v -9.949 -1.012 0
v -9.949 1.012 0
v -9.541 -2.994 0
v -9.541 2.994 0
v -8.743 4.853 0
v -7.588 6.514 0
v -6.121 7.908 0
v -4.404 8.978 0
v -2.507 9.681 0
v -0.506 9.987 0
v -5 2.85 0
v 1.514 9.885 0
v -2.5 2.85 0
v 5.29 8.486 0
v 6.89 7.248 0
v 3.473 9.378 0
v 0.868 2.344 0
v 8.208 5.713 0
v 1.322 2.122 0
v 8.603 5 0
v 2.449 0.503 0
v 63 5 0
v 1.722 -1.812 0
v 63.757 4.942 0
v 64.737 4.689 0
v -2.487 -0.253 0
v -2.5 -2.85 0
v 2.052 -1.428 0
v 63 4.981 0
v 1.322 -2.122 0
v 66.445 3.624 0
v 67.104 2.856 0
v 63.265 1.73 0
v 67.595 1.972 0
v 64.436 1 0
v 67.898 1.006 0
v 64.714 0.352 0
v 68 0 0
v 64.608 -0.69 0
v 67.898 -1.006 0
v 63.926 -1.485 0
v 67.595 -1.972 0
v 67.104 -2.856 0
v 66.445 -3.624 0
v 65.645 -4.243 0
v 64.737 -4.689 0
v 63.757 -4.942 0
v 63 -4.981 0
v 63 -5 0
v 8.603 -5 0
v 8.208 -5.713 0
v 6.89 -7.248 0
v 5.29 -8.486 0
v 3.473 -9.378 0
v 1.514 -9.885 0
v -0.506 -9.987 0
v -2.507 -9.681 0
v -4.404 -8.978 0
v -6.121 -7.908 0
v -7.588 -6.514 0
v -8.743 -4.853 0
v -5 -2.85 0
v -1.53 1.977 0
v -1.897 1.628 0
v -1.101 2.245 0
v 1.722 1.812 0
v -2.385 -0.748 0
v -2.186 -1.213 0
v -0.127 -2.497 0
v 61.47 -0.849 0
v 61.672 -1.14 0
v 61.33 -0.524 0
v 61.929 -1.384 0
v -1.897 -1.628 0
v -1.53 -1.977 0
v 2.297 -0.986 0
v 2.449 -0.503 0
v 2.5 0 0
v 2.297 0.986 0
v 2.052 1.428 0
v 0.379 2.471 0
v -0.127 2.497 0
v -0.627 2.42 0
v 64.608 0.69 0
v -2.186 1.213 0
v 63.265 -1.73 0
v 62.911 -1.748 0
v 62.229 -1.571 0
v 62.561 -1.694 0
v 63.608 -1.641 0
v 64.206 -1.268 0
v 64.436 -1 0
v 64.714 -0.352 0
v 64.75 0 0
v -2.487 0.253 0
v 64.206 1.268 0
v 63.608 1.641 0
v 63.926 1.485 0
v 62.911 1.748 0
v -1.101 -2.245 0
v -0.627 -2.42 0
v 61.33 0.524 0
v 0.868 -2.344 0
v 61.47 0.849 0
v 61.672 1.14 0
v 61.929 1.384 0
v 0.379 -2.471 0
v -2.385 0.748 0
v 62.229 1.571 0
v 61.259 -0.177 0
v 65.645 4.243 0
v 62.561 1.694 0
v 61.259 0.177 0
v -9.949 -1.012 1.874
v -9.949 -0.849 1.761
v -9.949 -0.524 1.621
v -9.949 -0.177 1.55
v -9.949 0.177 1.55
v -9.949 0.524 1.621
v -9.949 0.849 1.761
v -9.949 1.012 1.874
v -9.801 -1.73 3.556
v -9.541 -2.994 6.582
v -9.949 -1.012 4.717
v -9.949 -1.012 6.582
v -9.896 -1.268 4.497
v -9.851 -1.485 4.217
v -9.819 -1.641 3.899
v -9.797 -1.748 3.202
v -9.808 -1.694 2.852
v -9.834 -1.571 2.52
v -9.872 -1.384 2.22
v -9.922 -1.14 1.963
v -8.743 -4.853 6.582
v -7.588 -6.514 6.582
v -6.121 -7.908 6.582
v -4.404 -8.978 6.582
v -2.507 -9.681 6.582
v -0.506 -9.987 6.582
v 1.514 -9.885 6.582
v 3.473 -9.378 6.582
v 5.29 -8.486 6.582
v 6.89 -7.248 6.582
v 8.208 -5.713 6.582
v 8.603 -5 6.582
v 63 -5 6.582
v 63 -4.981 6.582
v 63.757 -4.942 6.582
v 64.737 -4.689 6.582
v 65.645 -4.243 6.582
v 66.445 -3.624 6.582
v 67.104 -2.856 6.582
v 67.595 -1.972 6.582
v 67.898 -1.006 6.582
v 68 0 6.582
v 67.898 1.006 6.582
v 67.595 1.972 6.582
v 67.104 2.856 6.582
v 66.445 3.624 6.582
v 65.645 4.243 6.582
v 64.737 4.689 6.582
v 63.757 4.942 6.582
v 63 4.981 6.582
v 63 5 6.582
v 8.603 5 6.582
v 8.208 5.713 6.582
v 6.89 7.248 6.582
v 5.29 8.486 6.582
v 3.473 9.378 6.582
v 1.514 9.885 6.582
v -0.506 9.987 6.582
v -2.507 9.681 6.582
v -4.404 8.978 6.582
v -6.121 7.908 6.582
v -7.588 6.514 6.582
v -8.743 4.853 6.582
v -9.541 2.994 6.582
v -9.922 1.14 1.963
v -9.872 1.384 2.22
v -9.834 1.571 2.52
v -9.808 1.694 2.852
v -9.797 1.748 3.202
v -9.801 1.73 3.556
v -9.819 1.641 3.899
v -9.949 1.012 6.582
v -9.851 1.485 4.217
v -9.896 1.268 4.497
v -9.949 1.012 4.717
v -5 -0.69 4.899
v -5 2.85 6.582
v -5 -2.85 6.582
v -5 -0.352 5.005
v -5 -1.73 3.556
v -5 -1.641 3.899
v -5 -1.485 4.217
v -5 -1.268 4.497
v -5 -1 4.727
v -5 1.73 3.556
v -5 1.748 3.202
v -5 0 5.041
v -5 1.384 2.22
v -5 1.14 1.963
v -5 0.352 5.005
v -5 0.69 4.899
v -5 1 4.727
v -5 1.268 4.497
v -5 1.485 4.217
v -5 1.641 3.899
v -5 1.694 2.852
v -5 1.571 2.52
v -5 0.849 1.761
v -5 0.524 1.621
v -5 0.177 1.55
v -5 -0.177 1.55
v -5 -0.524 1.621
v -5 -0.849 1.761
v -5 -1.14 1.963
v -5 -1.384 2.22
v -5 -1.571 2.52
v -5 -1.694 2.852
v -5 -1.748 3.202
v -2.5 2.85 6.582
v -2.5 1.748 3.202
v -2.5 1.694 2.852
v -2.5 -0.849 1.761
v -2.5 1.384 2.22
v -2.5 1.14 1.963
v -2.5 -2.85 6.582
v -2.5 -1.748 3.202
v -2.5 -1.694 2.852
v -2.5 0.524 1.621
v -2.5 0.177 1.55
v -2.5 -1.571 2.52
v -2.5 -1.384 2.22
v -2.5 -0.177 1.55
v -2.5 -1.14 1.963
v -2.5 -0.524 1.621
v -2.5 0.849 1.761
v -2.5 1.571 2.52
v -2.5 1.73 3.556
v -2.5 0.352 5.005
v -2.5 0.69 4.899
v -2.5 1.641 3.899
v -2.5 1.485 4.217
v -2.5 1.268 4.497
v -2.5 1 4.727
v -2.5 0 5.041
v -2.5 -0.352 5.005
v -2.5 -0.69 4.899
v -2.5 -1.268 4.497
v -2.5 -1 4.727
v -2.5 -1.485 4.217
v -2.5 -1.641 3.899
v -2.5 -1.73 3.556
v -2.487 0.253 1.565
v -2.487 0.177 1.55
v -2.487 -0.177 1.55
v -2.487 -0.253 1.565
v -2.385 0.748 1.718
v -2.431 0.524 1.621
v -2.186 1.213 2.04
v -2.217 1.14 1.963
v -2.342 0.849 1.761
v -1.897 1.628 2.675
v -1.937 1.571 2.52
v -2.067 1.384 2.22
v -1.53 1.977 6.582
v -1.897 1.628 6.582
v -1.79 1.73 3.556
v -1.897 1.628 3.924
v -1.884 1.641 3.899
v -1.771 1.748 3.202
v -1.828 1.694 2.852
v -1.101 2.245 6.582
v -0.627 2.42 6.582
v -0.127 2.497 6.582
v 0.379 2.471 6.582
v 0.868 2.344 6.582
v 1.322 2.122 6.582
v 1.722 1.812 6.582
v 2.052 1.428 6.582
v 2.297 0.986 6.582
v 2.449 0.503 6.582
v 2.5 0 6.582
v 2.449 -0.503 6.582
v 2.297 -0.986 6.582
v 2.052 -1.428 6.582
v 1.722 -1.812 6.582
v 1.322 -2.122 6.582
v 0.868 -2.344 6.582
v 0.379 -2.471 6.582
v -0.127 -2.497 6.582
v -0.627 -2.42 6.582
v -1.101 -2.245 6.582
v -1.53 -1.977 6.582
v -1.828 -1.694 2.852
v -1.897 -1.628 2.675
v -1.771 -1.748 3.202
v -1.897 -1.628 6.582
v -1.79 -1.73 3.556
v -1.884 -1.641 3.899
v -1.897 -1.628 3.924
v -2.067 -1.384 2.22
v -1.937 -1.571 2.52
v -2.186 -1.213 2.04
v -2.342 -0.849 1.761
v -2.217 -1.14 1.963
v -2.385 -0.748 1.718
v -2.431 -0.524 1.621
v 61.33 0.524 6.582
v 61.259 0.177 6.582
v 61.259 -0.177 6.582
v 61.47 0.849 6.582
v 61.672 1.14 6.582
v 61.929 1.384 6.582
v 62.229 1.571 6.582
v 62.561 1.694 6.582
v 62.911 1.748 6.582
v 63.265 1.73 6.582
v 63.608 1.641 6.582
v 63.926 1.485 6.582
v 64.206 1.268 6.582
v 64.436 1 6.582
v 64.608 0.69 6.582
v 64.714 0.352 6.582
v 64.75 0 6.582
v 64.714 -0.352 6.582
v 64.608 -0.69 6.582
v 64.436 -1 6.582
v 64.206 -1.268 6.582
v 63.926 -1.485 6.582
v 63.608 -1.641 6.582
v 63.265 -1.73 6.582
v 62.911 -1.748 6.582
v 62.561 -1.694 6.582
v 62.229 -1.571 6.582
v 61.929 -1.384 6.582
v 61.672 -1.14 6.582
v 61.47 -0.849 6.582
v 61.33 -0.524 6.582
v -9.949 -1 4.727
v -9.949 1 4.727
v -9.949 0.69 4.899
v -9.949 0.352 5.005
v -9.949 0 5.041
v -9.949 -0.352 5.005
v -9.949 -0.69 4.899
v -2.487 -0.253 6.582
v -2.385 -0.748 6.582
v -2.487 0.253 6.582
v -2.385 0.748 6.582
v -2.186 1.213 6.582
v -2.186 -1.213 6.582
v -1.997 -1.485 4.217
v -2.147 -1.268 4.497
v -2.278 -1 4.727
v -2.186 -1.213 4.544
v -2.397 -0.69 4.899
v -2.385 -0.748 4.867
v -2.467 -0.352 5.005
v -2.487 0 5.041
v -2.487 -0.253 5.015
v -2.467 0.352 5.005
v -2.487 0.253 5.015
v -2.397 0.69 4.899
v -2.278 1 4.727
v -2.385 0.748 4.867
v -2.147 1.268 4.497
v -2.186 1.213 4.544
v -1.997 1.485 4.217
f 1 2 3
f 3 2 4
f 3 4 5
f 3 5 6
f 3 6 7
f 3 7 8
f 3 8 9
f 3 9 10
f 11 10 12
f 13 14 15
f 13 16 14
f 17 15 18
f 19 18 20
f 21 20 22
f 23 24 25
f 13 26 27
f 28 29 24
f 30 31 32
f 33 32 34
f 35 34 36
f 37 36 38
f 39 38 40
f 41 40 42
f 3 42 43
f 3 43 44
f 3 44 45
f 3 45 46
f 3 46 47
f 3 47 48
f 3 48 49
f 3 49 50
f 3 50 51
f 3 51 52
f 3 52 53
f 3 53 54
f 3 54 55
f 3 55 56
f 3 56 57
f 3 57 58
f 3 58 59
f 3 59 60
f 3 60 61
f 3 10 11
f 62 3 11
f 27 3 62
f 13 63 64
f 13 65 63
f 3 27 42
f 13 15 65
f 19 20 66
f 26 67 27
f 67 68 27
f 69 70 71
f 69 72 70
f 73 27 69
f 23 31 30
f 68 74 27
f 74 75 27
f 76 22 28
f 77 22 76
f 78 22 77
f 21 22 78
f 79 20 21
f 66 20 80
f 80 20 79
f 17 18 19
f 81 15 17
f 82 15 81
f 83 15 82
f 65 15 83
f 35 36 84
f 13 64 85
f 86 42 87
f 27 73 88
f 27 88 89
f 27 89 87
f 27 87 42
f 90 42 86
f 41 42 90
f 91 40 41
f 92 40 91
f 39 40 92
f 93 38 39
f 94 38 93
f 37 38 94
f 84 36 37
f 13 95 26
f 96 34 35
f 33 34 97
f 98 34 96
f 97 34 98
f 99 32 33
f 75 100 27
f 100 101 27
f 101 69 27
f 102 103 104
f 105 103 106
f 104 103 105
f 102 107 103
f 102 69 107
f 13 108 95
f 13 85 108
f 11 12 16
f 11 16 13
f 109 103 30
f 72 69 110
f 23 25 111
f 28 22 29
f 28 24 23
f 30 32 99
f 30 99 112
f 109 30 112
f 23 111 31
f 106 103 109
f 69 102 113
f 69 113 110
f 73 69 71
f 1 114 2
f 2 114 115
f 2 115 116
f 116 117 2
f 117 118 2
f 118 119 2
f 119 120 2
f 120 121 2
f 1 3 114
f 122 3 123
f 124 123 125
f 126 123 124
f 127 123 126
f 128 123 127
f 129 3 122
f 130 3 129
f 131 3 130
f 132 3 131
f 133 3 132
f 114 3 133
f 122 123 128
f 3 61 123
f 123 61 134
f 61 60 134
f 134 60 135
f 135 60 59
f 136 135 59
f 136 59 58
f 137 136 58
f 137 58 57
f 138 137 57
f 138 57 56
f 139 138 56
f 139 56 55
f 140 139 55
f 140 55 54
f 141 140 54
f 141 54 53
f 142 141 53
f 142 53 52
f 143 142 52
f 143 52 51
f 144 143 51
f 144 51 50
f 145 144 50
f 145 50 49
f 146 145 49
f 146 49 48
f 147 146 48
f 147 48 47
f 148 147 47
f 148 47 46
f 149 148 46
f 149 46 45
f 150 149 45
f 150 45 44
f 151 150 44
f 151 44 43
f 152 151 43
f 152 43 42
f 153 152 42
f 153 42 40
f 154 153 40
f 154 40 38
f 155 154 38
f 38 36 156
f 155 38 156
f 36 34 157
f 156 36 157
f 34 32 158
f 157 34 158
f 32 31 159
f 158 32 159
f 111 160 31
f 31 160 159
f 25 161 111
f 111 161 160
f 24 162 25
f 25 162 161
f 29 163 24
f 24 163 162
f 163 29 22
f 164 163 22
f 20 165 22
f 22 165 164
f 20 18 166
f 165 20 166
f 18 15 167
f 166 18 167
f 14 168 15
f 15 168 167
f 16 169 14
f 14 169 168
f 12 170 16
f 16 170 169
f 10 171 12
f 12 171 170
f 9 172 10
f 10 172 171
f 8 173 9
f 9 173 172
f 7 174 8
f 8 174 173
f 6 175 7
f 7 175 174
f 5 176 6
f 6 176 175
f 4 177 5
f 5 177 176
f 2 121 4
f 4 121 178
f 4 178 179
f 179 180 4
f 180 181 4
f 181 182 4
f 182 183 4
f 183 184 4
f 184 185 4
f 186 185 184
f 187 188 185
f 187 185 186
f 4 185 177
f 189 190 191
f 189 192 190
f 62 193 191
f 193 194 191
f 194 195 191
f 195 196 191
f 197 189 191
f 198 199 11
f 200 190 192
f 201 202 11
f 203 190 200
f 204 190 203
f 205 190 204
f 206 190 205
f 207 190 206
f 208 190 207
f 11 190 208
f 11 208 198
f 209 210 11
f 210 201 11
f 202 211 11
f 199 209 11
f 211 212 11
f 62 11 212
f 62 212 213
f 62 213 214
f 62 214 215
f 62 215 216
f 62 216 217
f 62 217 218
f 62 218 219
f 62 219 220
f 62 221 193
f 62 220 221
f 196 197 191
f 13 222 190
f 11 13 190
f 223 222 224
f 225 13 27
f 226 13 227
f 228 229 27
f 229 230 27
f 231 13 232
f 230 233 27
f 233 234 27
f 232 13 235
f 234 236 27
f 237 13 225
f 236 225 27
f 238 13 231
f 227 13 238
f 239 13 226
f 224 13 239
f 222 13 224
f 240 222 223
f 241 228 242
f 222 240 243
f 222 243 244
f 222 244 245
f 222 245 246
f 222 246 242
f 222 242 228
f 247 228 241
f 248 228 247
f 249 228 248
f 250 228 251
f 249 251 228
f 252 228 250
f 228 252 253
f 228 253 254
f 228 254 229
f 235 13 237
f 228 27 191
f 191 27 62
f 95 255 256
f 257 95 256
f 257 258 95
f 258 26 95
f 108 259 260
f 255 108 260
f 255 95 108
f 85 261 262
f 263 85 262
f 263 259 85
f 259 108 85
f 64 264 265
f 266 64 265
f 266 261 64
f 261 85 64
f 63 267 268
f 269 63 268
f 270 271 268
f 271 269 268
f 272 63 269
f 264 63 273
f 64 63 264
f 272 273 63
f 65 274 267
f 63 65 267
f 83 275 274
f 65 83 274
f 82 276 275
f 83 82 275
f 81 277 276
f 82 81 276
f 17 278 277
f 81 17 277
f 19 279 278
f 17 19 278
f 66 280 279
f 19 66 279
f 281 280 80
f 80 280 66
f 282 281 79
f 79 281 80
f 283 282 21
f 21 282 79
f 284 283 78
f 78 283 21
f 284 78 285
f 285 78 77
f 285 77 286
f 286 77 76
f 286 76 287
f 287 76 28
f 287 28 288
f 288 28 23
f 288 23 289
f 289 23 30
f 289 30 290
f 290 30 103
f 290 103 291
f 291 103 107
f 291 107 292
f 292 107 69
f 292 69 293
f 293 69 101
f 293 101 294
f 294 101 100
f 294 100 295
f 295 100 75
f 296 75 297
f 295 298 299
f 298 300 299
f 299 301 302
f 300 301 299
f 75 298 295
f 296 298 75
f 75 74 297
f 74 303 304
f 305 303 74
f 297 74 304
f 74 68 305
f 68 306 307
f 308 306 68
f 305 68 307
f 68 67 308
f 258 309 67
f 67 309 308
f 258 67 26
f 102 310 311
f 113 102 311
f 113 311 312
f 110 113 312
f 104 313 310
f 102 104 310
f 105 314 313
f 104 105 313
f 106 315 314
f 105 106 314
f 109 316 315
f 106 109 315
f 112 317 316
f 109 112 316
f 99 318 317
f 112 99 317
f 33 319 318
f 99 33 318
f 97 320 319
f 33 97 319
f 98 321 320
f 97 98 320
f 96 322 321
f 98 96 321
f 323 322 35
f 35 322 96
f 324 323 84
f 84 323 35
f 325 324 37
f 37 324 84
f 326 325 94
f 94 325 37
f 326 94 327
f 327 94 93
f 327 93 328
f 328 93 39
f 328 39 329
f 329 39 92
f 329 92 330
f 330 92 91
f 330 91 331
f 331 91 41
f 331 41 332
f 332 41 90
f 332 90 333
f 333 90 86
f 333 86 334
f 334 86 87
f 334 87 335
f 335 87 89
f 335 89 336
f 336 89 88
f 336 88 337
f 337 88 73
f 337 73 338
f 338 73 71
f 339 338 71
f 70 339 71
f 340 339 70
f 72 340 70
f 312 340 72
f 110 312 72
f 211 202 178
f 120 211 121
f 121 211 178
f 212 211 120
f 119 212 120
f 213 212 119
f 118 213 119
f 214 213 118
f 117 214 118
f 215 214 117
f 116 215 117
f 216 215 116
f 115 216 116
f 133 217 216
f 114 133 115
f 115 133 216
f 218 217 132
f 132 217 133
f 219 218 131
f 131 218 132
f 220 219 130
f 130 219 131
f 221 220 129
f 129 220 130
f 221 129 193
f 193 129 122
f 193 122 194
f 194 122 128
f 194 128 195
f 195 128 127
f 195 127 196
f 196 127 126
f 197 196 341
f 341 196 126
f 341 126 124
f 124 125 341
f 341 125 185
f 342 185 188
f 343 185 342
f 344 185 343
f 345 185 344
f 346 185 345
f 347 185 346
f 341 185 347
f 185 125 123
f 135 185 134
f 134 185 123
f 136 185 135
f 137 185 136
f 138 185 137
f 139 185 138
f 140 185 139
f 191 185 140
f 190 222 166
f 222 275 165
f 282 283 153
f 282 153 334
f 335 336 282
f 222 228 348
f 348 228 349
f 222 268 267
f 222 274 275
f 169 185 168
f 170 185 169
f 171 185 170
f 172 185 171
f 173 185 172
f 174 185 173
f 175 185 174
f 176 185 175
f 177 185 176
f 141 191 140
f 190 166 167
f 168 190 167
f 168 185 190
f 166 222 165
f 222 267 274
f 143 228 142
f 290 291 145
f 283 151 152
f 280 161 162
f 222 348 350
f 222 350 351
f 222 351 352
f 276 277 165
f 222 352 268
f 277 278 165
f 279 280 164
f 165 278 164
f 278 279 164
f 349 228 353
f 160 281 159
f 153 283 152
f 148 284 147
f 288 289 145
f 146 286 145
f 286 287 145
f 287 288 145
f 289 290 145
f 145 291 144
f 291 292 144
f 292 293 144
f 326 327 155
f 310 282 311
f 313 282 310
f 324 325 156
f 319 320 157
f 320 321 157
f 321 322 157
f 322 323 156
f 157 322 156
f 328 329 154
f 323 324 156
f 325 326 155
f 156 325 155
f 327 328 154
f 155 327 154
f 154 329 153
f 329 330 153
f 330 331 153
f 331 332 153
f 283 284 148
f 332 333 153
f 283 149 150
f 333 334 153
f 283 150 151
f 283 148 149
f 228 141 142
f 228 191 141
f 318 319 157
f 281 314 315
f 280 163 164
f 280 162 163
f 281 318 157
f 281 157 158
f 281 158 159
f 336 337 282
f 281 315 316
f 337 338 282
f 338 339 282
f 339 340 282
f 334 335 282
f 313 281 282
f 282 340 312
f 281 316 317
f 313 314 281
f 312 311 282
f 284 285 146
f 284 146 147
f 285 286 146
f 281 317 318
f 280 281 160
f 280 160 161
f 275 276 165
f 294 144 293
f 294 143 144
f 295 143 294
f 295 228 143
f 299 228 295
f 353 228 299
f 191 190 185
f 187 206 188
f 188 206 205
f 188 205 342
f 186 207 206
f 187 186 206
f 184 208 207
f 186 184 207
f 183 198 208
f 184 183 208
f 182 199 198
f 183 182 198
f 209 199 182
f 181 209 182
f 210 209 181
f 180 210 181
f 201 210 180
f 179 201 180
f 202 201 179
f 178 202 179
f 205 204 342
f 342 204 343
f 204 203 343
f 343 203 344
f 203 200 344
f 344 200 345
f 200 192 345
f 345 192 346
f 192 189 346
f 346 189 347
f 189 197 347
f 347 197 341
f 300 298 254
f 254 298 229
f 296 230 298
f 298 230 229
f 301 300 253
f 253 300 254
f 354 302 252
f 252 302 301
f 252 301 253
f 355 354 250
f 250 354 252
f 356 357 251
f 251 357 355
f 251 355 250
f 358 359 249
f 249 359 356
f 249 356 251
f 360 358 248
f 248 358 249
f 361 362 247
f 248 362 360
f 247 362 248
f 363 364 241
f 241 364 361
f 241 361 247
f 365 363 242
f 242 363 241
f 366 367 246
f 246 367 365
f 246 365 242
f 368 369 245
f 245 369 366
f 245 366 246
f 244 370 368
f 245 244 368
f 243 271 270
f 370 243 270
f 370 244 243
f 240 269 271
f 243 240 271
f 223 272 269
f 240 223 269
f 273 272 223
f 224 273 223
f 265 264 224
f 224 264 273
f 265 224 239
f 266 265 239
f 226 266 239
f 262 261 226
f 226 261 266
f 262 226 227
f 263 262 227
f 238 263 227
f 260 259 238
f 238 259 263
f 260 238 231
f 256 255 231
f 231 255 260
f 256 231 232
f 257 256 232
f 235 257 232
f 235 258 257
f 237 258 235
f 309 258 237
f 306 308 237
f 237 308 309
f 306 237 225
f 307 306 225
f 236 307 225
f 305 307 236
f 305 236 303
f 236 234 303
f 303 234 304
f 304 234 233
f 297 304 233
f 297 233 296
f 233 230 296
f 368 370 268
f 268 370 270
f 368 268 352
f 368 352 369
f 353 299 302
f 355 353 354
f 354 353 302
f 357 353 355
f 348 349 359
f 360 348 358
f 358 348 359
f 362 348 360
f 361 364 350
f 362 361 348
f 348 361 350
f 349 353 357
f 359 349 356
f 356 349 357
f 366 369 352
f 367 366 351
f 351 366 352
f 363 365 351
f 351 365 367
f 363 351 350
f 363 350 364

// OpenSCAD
// file: config.scad
// https://docs.google.com/viewer?a=v&pid=explorer&chrome=true&srcid=0B8AGtzEPL1XpNGIwMjM0NzQtZmMyMS00YmU2LTkwMjItNTkzNzA0MDJkZTAx&hl=en_US&authkey=CMjZjW0

$fn = 31;

//Delta config constants
upperlinkage = 63; 
lowerlinkage = 126;
baseradius = 45;
endeffector = 50; //radius of the end effector
fourbarspacing = 70;

//hardware
screwdia = 3.5; //m3
screwheaddia = 5.6; //m3
screwheadheight = 3.2; //m3
nutapothem = 5.7; //m3
nutheight = 2.5; //m3 lock nut

//motors 
holespacing = 17*2.54*sin(45); //nema 17
shaftlength = 22;
shaftdia = 5;
bodylength = 48;
bodywidth = 42; //could also be diameter of a round servo
motorwall = 2.75;
motorcenterdia = 22;

//Structure pieces
structbase = 110;  //180
structheight = 40;  //70
structholes = 3; //how many holes are on each side. 
structthickness = 2;
structbracewidth = 9;

//z axis plates
smoothroddia = 8;
platelength = 110;
platethickness = 3;

//cups
cupwall = 2.7;


//base
basemotorwall = 4;

//upper linkage
upperlinkthick = nutapothem/cos(30);
upperlinkwidth = 20;

//general shit
nutwall = nutapothem/4;
// main file
include <config.scad>;

module upperlinkage(){

	difference(){

		union(){

			//shaft wall
			translate([0,0,0])cylinder (r=upperlinkwidth/2, h = upperlinkthick);

			//end wall
			translate([upperlinkage,0,0])cylinder (r=upperlinkwidth/4, h = upperlinkthick);

			//length
			translate([0,-upperlinkwidth/4,0])cube([upperlinkage,upperlinkwidth/2,upperlinkthick]);

		}

		//motor shaft hole
		translate([0,0,-1])cylinder (r=shaftdia/2, h = upperlinkthick +2);

		//bearing hole
		translate([upperlinkage,0,-1])cylinder (r=screwdia/2, h = upperlinkthick +2);

		//motor set screw and nut
		translate([0,0,upperlinkthick/2])rotate([0,-90,0])cylinder(r=screwdia/2, h = upperlinkwidth/2+1);
		translate([-shaftdia/2-nutheight,-nutapothem/2,-1])cube([nutheight,nutapothem,upperlinkthick+2]);
		
	}

}

upperlinkage();
